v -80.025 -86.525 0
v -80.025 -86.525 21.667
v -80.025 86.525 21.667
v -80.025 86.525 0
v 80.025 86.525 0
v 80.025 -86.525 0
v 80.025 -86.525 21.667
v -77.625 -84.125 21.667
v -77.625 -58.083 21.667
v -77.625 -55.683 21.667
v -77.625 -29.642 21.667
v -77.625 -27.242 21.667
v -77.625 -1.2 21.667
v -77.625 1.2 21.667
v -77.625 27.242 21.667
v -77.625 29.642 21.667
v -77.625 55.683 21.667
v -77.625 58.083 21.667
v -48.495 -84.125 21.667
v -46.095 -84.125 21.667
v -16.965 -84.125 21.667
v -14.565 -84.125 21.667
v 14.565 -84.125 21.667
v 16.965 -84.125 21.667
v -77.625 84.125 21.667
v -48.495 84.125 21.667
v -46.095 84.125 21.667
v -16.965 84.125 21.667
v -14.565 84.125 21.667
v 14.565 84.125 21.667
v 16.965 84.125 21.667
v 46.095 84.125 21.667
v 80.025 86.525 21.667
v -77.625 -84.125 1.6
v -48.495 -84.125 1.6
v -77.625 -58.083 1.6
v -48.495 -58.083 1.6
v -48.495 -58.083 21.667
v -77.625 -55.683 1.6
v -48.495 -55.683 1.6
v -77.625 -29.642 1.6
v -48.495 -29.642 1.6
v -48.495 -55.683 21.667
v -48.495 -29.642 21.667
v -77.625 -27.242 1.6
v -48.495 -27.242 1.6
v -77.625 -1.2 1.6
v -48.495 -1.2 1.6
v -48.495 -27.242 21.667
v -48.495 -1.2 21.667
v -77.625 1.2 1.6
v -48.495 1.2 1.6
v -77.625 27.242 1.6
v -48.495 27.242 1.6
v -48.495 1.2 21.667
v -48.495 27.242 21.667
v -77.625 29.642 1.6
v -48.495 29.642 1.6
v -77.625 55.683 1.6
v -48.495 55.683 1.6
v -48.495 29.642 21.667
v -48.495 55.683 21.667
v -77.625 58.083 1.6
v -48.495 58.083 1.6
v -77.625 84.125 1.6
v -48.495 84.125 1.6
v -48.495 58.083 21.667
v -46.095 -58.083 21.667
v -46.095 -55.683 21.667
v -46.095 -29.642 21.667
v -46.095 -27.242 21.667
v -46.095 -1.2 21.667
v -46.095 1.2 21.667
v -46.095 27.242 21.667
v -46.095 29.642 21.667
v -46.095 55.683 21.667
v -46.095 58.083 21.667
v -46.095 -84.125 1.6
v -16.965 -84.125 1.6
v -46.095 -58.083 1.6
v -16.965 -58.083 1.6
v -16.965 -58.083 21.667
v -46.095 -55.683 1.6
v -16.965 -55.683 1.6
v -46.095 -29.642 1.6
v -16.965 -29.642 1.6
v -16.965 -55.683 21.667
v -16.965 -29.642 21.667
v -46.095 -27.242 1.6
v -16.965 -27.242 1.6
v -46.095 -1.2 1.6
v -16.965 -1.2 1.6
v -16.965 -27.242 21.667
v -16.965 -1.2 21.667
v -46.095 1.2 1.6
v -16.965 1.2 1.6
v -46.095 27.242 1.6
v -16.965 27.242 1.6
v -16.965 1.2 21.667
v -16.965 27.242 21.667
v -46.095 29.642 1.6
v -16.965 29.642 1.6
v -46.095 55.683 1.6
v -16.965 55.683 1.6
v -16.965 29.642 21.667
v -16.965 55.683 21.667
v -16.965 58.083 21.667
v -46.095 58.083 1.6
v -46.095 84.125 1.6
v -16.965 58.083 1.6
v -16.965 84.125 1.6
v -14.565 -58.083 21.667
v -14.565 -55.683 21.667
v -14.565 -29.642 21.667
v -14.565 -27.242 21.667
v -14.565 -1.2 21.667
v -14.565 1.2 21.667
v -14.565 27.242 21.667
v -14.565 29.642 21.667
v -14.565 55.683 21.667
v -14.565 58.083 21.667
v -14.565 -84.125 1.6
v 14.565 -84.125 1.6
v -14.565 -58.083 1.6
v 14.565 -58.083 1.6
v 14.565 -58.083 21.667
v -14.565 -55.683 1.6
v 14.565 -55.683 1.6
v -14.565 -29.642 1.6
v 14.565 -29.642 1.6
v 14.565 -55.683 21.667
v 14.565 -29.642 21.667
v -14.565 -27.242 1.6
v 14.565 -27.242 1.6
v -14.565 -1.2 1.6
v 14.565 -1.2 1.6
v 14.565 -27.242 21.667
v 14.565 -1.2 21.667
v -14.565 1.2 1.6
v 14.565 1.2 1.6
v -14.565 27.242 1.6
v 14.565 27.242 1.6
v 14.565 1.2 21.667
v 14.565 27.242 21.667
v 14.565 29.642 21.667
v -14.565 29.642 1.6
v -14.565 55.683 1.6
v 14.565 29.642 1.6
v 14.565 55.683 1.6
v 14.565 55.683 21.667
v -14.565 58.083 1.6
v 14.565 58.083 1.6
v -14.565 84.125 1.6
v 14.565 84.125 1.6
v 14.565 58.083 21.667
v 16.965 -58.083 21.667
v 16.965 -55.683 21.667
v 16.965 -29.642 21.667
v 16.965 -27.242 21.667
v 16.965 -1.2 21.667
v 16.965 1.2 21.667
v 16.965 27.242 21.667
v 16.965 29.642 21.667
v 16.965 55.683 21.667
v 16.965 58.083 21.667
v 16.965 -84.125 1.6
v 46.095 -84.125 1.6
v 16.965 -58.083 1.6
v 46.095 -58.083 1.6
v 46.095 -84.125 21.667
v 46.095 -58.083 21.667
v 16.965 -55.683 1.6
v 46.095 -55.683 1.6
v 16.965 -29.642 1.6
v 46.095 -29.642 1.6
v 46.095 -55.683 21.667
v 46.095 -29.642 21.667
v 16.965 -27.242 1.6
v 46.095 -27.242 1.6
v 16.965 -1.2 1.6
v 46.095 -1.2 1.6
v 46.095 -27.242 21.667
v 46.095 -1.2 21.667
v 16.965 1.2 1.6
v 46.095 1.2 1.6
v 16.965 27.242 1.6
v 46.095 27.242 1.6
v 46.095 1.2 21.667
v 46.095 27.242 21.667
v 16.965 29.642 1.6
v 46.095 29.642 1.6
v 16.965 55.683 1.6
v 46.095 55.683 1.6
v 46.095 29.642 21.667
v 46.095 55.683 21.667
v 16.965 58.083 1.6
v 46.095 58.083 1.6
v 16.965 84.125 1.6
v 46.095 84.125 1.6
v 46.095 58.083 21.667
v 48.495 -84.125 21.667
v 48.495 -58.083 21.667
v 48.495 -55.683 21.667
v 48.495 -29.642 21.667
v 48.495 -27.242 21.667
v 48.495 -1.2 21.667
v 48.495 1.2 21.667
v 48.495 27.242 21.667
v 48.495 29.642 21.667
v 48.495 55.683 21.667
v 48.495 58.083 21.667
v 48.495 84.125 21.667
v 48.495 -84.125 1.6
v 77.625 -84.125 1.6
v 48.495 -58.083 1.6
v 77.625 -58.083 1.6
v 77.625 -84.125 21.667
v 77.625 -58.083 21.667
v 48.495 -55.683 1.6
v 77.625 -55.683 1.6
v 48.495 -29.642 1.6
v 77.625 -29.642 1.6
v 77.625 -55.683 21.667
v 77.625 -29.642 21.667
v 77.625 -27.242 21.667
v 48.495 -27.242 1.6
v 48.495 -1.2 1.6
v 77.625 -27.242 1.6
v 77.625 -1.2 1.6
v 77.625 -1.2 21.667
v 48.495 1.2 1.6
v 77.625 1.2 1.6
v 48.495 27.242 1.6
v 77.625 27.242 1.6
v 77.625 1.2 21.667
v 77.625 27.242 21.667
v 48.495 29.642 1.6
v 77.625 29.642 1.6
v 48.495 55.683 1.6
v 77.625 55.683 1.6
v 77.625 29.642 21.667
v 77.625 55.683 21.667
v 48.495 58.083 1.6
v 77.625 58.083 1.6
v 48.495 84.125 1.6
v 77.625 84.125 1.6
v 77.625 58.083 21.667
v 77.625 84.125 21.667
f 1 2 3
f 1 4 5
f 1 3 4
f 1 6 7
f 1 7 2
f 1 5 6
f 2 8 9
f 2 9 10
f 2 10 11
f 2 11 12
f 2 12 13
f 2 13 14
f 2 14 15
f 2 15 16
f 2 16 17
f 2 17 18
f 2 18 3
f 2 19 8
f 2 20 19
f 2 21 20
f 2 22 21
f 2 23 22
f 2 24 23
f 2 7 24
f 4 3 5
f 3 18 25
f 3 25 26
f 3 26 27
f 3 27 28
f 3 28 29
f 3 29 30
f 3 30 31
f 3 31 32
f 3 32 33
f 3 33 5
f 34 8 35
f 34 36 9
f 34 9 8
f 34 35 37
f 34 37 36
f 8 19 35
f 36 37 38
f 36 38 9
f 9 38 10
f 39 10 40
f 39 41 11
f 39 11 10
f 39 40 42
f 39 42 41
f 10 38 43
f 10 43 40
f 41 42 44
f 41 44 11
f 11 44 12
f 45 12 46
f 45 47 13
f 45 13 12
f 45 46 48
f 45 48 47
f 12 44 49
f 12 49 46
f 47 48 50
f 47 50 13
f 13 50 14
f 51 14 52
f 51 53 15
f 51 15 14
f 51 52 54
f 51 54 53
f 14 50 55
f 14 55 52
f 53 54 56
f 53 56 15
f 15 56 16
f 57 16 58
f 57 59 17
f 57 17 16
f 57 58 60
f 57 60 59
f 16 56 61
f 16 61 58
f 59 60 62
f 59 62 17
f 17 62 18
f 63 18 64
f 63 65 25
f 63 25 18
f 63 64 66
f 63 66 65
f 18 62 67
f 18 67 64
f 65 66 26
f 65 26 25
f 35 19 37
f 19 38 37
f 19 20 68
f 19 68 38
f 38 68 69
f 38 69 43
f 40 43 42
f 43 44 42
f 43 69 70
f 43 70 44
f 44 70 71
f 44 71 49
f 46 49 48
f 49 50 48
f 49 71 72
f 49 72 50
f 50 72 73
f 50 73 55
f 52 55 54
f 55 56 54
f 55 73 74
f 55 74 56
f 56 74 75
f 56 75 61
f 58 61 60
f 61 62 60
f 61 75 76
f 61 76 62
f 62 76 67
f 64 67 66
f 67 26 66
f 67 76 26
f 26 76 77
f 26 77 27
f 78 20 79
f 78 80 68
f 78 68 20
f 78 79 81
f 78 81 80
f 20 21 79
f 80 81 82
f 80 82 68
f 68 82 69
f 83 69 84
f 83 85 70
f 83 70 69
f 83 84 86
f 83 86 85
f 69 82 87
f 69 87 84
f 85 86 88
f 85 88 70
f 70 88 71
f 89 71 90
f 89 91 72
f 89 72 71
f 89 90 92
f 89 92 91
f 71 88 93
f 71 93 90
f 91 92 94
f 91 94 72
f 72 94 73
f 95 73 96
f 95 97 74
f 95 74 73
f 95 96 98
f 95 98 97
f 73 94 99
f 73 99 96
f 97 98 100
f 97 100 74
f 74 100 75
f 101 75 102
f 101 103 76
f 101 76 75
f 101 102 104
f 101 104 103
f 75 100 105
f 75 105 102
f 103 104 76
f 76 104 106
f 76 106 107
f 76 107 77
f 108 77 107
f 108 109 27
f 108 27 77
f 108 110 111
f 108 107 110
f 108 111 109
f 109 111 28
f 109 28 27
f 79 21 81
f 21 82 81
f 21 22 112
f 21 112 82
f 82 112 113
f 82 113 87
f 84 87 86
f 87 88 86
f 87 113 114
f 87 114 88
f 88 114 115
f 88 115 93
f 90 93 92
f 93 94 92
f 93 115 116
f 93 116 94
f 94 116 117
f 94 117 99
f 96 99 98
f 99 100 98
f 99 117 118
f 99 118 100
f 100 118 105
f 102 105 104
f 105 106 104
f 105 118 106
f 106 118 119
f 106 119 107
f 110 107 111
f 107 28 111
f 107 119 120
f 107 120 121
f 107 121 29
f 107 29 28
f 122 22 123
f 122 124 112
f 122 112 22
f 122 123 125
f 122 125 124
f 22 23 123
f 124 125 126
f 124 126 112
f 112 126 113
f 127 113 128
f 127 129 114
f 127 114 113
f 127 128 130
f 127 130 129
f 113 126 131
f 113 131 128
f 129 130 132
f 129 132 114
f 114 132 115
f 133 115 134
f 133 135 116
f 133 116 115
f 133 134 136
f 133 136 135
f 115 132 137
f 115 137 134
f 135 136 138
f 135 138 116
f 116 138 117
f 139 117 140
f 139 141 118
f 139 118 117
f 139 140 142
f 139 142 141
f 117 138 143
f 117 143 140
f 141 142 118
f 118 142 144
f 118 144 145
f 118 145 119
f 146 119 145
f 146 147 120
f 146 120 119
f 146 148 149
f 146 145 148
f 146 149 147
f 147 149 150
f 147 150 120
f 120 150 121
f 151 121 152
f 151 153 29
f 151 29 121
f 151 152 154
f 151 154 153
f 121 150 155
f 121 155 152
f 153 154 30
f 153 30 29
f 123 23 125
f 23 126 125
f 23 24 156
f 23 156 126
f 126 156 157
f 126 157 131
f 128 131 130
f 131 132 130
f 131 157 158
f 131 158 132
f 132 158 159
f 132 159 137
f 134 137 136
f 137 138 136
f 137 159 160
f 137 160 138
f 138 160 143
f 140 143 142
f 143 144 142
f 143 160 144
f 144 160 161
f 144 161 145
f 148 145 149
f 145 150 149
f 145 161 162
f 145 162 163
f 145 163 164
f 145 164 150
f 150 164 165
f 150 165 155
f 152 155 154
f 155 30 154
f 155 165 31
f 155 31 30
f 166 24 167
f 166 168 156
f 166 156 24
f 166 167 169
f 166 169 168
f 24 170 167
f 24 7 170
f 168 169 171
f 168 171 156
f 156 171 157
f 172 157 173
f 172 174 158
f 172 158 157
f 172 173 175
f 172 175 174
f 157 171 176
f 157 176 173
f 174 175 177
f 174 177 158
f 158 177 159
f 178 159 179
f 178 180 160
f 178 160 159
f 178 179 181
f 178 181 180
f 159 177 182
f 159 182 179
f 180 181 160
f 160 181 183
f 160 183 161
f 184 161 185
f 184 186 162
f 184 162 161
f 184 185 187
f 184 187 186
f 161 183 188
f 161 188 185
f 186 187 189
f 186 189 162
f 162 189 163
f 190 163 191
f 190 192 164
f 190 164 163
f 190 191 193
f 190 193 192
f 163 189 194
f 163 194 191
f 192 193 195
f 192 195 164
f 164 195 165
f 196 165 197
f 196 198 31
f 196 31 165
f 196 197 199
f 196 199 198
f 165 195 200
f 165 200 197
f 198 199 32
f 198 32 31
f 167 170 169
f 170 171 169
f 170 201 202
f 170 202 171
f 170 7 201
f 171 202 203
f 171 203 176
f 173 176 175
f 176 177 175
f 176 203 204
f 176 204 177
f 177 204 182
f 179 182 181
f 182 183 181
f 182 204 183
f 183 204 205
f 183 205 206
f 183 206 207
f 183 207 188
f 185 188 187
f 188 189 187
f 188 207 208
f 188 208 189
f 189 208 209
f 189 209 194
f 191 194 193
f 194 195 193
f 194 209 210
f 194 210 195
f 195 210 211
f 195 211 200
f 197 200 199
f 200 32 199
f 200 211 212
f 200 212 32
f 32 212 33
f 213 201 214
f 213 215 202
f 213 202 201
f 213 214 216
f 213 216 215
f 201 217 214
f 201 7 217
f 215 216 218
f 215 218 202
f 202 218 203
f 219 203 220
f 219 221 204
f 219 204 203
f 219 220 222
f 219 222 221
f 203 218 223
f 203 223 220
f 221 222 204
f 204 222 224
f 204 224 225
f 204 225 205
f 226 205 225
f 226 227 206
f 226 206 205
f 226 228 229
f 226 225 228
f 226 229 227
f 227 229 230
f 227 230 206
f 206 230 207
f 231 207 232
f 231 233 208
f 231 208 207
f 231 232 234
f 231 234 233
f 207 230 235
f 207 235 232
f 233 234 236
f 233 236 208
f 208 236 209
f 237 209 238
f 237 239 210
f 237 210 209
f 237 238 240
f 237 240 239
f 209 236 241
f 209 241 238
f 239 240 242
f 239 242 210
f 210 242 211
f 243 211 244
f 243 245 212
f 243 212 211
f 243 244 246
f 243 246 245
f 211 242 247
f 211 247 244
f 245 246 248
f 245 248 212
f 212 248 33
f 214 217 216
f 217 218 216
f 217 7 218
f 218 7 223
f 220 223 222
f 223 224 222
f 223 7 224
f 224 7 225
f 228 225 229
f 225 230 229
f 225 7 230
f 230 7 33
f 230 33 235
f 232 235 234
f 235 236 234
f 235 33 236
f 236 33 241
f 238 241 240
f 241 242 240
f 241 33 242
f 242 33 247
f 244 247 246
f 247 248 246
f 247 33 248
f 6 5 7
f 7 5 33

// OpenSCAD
// Start: lazy_union
default_5_default_5();
// End: lazy_union

// Modules.

// 'PartMaterial undef-default - default 5.0'
module default_5_default_5() {
  // 'None : _combine_solids_and_holes'
  union() {
    // '_combine_solids_and_holes'
    difference() {
      // 'B5x6 : _combine_solids_and_holes'
      union() {
        // 'box'
        multmatrix(m=[[1.0, 0.0, 0.0, -80.025], [0.0, 1.0, 0.0, -86.525], [0.0, 0.0, 1.0, 0.0], [0.0, 0.0, 0.0, 1.0]]) {
          // 'box : _combine_solids_and_holes'
          union() {
            // 'box'
            cube(size=[160.05, 173.05, 21.666666666666668]);
          }
        }
      }
      // 'B5x6'
      multmatrix(m=[[1.0, 0.0, 0.0, -77.625], [0.0, 1.0, 0.0, 58.08333333333333], [0.0, 0.0, 1.0, 1.6], [0.0, 0.0, 0.0, 1.0]]) {
        // "('hole', 0, 0) : _combine_solids_and_holes"
        union() {
          // ('hole', 0, 0)
          cube(size=[29.130000000000003, 26.041666666666668, 20.076666666666668]);
        }
      }
      // 'B5x6'
      multmatrix(m=[[1.0, 0.0, 0.0, -77.625], [0.0, 1.0, 0.0, 29.64166666666667], [0.0, 0.0, 1.0, 1.6], [0.0, 0.0, 0.0, 1.0]]) {
        // "('hole', 0, 1) : _combine_solids_and_holes"
        union() {
          // ('hole', 0, 1)
          cube(size=[29.130000000000003, 26.041666666666668, 20.076666666666668]);
        }
      }
      // 'B5x6'
      multmatrix(m=[[1.0, 0.0, 0.0, -77.625], [0.0, 1.0, 0.0, 1.2000000000000064], [0.0, 0.0, 1.0, 1.6], [0.0, 0.0, 0.0, 1.0]]) {
        // "('hole', 0, 2) : _combine_solids_and_holes"
        union() {
          // ('hole', 0, 2)
          cube(size=[29.130000000000003, 26.041666666666668, 20.076666666666668]);
        }
      }
      // 'B5x6'
      multmatrix(m=[[1.0, 0.0, 0.0, -77.625], [0.0, 1.0, 0.0, -27.24166666666667], [0.0, 0.0, 1.0, 1.6], [0.0, 0.0, 0.0, 1.0]]) {
        // "('hole', 0, 3) : _combine_solids_and_holes"
        union() {
          // ('hole', 0, 3)
          cube(size=[29.130000000000003, 26.041666666666668, 20.076666666666668]);
        }
      }
      // 'B5x6'
      multmatrix(m=[[1.0, 0.0, 0.0, -77.625], [0.0, 1.0, 0.0, -55.68333333333334], [0.0, 0.0, 1.0, 1.6], [0.0, 0.0, 0.0, 1.0]]) {
        // "('hole', 0, 4) : _combine_solids_and_holes"
        union() {
          // ('hole', 0, 4)
          cube(size=[29.130000000000003, 26.041666666666668, 20.076666666666668]);
        }
      }
      // 'B5x6'
      multmatrix(m=[[1.0, 0.0, 0.0, -77.625], [0.0, 1.0, 0.0, -84.12500000000001], [0.0, 0.0, 1.0, 1.6], [0.0, 0.0, 0.0, 1.0]]) {
        // "('hole', 0, 5) : _combine_solids_and_holes"
        union() {
          // ('hole', 0, 5)
          cube(size=[29.130000000000003, 26.041666666666668, 20.076666666666668]);
        }
      }
      // 'B5x6'
      multmatrix(m=[[1.0, 0.0, 0.0, -46.095000000000006], [0.0, 1.0, 0.0, 58.08333333333333], [0.0, 0.0, 1.0, 1.6], [0.0, 0.0, 0.0, 1.0]]) {
        // "('hole', 1, 0) : _combine_solids_and_holes"
        union() {
          // ('hole', 1, 0)
          cube(size=[29.130000000000003, 26.041666666666668, 20.076666666666668]);
        }
      }
      // 'B5x6'
      multmatrix(m=[[1.0, 0.0, 0.0, -46.095000000000006], [0.0, 1.0, 0.0, 29.64166666666667], [0.0, 0.0, 1.0, 1.6], [0.0, 0.0, 0.0, 1.0]]) {
        // "('hole', 1, 1) : _combine_solids_and_holes"
        union() {
          // ('hole', 1, 1)
          cube(size=[29.130000000000003, 26.041666666666668, 20.076666666666668]);
        }
      }
      // 'B5x6'
      multmatrix(m=[[1.0, 0.0, 0.0, -46.095000000000006], [0.0, 1.0, 0.0, 1.2000000000000064], [0.0, 0.0, 1.0, 1.6], [0.0, 0.0, 0.0, 1.0]]) {
        // "('hole', 1, 2) : _combine_solids_and_holes"
        union() {
          // ('hole', 1, 2)
          cube(size=[29.130000000000003, 26.041666666666668, 20.076666666666668]);
        }
      }
      // 'B5x6'
      multmatrix(m=[[1.0, 0.0, 0.0, -46.095000000000006], [0.0, 1.0, 0.0, -27.24166666666667], [0.0, 0.0, 1.0, 1.6], [0.0, 0.0, 0.0, 1.0]]) {
        // "('hole', 1, 3) : _combine_solids_and_holes"
        union() {
          // ('hole', 1, 3)
          cube(size=[29.130000000000003, 26.041666666666668, 20.076666666666668]);
        }
      }
      // 'B5x6'
      multmatrix(m=[[1.0, 0.0, 0.0, -46.095000000000006], [0.0, 1.0, 0.0, -55.68333333333334], [0.0, 0.0, 1.0, 1.6], [0.0, 0.0, 0.0, 1.0]]) {
        // "('hole', 1, 4) : _combine_solids_and_holes"
        union() {
          // ('hole', 1, 4)
          cube(size=[29.130000000000003, 26.041666666666668, 20.076666666666668]);
        }
      }
      // 'B5x6'
      multmatrix(m=[[1.0, 0.0, 0.0, -46.095000000000006], [0.0, 1.0, 0.0, -84.12500000000001], [0.0, 0.0, 1.0, 1.6], [0.0, 0.0, 0.0, 1.0]]) {
        // "('hole', 1, 5) : _combine_solids_and_holes"
        union() {
          // ('hole', 1, 5)
          cube(size=[29.130000000000003, 26.041666666666668, 20.076666666666668]);
        }
      }
      // 'B5x6'
      multmatrix(m=[[1.0, 0.0, 0.0, -14.564999999999998], [0.0, 1.0, 0.0, 58.08333333333333], [0.0, 0.0, 1.0, 1.6], [0.0, 0.0, 0.0, 1.0]]) {
        // "('hole', 2, 0) : _combine_solids_and_holes"
        union() {
          // ('hole', 2, 0)
          cube(size=[29.130000000000003, 26.041666666666668, 20.076666666666668]);
        }
      }
      // 'B5x6'
      multmatrix(m=[[1.0, 0.0, 0.0, -14.564999999999998], [0.0, 1.0, 0.0, 29.64166666666667], [0.0, 0.0, 1.0, 1.6], [0.0, 0.0, 0.0, 1.0]]) {
        // "('hole', 2, 1) : _combine_solids_and_holes"
        union() {
          // ('hole', 2, 1)
          cube(size=[29.130000000000003, 26.041666666666668, 20.076666666666668]);
        }
      }
      // 'B5x6'
      multmatrix(m=[[1.0, 0.0, 0.0, -14.564999999999998], [0.0, 1.0, 0.0, 1.2000000000000064], [0.0, 0.0, 1.0, 1.6], [0.0, 0.0, 0.0, 1.0]]) {
        // "('hole', 2, 2) : _combine_solids_and_holes"
        union() {
          // ('hole', 2, 2)
          cube(size=[29.130000000000003, 26.041666666666668, 20.076666666666668]);
        }
      }
      // 'B5x6'
      multmatrix(m=[[1.0, 0.0, 0.0, -14.564999999999998], [0.0, 1.0, 0.0, -27.24166666666667], [0.0, 0.0, 1.0, 1.6], [0.0, 0.0, 0.0, 1.0]]) {
        // "('hole', 2, 3) : _combine_solids_and_holes"
        union() {
          // ('hole', 2, 3)
          cube(size=[29.130000000000003, 26.041666666666668, 20.076666666666668]);
        }
      }
      // 'B5x6'
      multmatrix(m=[[1.0, 0.0, 0.0, -14.564999999999998], [0.0, 1.0, 0.0, -55.68333333333334], [0.0, 0.0, 1.0, 1.6], [0.0, 0.0, 0.0, 1.0]]) {
        // "('hole', 2, 4) : _combine_solids_and_holes"
        union() {
          // ('hole', 2, 4)
          cube(size=[29.130000000000003, 26.041666666666668, 20.076666666666668]);
        }
      }
      // 'B5x6'
      multmatrix(m=[[1.0, 0.0, 0.0, -14.564999999999998], [0.0, 1.0, 0.0, -84.12500000000001], [0.0, 0.0, 1.0, 1.6], [0.0, 0.0, 0.0, 1.0]]) {
        // "('hole', 2, 5) : _combine_solids_and_holes"
        union() {
          // ('hole', 2, 5)
          cube(size=[29.130000000000003, 26.041666666666668, 20.076666666666668]);
        }
      }
      // 'B5x6'
      multmatrix(m=[[1.0, 0.0, 0.0, 16.965000000000003], [0.0, 1.0, 0.0, 58.08333333333333], [0.0, 0.0, 1.0, 1.6], [0.0, 0.0, 0.0, 1.0]]) {
        // "('hole', 3, 0) : _combine_solids_and_holes"
        union() {
          // ('hole', 3, 0)
          cube(size=[29.130000000000003, 26.041666666666668, 20.076666666666668]);
        }
      }
      // 'B5x6'
      multmatrix(m=[[1.0, 0.0, 0.0, 16.965000000000003], [0.0, 1.0, 0.0, 29.64166666666667], [0.0, 0.0, 1.0, 1.6], [0.0, 0.0, 0.0, 1.0]]) {
        // "('hole', 3, 1) : _combine_solids_and_holes"
        union() {
          // ('hole', 3, 1)
          cube(size=[29.130000000000003, 26.041666666666668, 20.076666666666668]);
        }
      }
      // 'B5x6'
      multmatrix(m=[[1.0, 0.0, 0.0, 16.965000000000003], [0.0, 1.0, 0.0, 1.2000000000000064], [0.0, 0.0, 1.0, 1.6], [0.0, 0.0, 0.0, 1.0]]) {
        // "('hole', 3, 2) : _combine_solids_and_holes"
        union() {
          // ('hole', 3, 2)
          cube(size=[29.130000000000003, 26.041666666666668, 20.076666666666668]);
        }
      }
      // 'B5x6'
      multmatrix(m=[[1.0, 0.0, 0.0, 16.965000000000003], [0.0, 1.0, 0.0, -27.24166666666667], [0.0, 0.0, 1.0, 1.6], [0.0, 0.0, 0.0, 1.0]]) {
        // "('hole', 3, 3) : _combine_solids_and_holes"
        union() {
          // ('hole', 3, 3)
          cube(size=[29.130000000000003, 26.041666666666668, 20.076666666666668]);
        }
      }
      // 'B5x6'
      multmatrix(m=[[1.0, 0.0, 0.0, 16.965000000000003], [0.0, 1.0, 0.0, -55.68333333333334], [0.0, 0.0, 1.0, 1.6], [0.0, 0.0, 0.0, 1.0]]) {
        // "('hole', 3, 4) : _combine_solids_and_holes"
        union() {
          // ('hole', 3, 4)
          cube(size=[29.130000000000003, 26.041666666666668, 20.076666666666668]);
        }
      }
      // 'B5x6'
      multmatrix(m=[[1.0, 0.0, 0.0, 16.965000000000003], [0.0, 1.0, 0.0, -84.12500000000001], [0.0, 0.0, 1.0, 1.6], [0.0, 0.0, 0.0, 1.0]]) {
        // "('hole', 3, 5) : _combine_solids_and_holes"
        union() {
          // ('hole', 3, 5)
          cube(size=[29.130000000000003, 26.041666666666668, 20.076666666666668]);
        }
      }
      // 'B5x6'
      multmatrix(m=[[1.0, 0.0, 0.0, 48.495000000000005], [0.0, 1.0, 0.0, 58.08333333333333], [0.0, 0.0, 1.0, 1.6], [0.0, 0.0, 0.0, 1.0]]) {
        // "('hole', 4, 0) : _combine_solids_and_holes"
        union() {
          // ('hole', 4, 0)
          cube(size=[29.130000000000003, 26.041666666666668, 20.076666666666668]);
        }
      }
      // 'B5x6'
      multmatrix(m=[[1.0, 0.0, 0.0, 48.495000000000005], [0.0, 1.0, 0.0, 29.64166666666667], [0.0, 0.0, 1.0, 1.6], [0.0, 0.0, 0.0, 1.0]]) {
        // "('hole', 4, 1) : _combine_solids_and_holes"
        union() {
          // ('hole', 4, 1)
          cube(size=[29.130000000000003, 26.041666666666668, 20.076666666666668]);
        }
      }
      // 'B5x6'
      multmatrix(m=[[1.0, 0.0, 0.0, 48.495000000000005], [0.0, 1.0, 0.0, 1.2000000000000064], [0.0, 0.0, 1.0, 1.6], [0.0, 0.0, 0.0, 1.0]]) {
        // "('hole', 4, 2) : _combine_solids_and_holes"
        union() {
          // ('hole', 4, 2)
          cube(size=[29.130000000000003, 26.041666666666668, 20.076666666666668]);
        }
      }
      // 'B5x6'
      multmatrix(m=[[1.0, 0.0, 0.0, 48.495000000000005], [0.0, 1.0, 0.0, -27.24166666666667], [0.0, 0.0, 1.0, 1.6], [0.0, 0.0, 0.0, 1.0]]) {
        // "('hole', 4, 3) : _combine_solids_and_holes"
        union() {
          // ('hole', 4, 3)
          cube(size=[29.130000000000003, 26.041666666666668, 20.076666666666668]);
        }
      }
      // 'B5x6'
      multmatrix(m=[[1.0, 0.0, 0.0, 48.495000000000005], [0.0, 1.0, 0.0, -55.68333333333334], [0.0, 0.0, 1.0, 1.6], [0.0, 0.0, 0.0, 1.0]]) {
        // "('hole', 4, 4) : _combine_solids_and_holes"
        union() {
          // ('hole', 4, 4)
          cube(size=[29.130000000000003, 26.041666666666668, 20.076666666666668]);
        }
      }
      // 'B5x6'
      multmatrix(m=[[1.0, 0.0, 0.0, 48.495000000000005], [0.0, 1.0, 0.0, -84.12500000000001], [0.0, 0.0, 1.0, 1.6], [0.0, 0.0, 0.0, 1.0]]) {
        // "('hole', 4, 5) : _combine_solids_and_holes"
        union() {
          // ('hole', 4, 5)
          cube(size=[29.130000000000003, 26.041666666666668, 20.076666666666668]);
        }
      }
    }
  }
} // end module default_5_default_5
